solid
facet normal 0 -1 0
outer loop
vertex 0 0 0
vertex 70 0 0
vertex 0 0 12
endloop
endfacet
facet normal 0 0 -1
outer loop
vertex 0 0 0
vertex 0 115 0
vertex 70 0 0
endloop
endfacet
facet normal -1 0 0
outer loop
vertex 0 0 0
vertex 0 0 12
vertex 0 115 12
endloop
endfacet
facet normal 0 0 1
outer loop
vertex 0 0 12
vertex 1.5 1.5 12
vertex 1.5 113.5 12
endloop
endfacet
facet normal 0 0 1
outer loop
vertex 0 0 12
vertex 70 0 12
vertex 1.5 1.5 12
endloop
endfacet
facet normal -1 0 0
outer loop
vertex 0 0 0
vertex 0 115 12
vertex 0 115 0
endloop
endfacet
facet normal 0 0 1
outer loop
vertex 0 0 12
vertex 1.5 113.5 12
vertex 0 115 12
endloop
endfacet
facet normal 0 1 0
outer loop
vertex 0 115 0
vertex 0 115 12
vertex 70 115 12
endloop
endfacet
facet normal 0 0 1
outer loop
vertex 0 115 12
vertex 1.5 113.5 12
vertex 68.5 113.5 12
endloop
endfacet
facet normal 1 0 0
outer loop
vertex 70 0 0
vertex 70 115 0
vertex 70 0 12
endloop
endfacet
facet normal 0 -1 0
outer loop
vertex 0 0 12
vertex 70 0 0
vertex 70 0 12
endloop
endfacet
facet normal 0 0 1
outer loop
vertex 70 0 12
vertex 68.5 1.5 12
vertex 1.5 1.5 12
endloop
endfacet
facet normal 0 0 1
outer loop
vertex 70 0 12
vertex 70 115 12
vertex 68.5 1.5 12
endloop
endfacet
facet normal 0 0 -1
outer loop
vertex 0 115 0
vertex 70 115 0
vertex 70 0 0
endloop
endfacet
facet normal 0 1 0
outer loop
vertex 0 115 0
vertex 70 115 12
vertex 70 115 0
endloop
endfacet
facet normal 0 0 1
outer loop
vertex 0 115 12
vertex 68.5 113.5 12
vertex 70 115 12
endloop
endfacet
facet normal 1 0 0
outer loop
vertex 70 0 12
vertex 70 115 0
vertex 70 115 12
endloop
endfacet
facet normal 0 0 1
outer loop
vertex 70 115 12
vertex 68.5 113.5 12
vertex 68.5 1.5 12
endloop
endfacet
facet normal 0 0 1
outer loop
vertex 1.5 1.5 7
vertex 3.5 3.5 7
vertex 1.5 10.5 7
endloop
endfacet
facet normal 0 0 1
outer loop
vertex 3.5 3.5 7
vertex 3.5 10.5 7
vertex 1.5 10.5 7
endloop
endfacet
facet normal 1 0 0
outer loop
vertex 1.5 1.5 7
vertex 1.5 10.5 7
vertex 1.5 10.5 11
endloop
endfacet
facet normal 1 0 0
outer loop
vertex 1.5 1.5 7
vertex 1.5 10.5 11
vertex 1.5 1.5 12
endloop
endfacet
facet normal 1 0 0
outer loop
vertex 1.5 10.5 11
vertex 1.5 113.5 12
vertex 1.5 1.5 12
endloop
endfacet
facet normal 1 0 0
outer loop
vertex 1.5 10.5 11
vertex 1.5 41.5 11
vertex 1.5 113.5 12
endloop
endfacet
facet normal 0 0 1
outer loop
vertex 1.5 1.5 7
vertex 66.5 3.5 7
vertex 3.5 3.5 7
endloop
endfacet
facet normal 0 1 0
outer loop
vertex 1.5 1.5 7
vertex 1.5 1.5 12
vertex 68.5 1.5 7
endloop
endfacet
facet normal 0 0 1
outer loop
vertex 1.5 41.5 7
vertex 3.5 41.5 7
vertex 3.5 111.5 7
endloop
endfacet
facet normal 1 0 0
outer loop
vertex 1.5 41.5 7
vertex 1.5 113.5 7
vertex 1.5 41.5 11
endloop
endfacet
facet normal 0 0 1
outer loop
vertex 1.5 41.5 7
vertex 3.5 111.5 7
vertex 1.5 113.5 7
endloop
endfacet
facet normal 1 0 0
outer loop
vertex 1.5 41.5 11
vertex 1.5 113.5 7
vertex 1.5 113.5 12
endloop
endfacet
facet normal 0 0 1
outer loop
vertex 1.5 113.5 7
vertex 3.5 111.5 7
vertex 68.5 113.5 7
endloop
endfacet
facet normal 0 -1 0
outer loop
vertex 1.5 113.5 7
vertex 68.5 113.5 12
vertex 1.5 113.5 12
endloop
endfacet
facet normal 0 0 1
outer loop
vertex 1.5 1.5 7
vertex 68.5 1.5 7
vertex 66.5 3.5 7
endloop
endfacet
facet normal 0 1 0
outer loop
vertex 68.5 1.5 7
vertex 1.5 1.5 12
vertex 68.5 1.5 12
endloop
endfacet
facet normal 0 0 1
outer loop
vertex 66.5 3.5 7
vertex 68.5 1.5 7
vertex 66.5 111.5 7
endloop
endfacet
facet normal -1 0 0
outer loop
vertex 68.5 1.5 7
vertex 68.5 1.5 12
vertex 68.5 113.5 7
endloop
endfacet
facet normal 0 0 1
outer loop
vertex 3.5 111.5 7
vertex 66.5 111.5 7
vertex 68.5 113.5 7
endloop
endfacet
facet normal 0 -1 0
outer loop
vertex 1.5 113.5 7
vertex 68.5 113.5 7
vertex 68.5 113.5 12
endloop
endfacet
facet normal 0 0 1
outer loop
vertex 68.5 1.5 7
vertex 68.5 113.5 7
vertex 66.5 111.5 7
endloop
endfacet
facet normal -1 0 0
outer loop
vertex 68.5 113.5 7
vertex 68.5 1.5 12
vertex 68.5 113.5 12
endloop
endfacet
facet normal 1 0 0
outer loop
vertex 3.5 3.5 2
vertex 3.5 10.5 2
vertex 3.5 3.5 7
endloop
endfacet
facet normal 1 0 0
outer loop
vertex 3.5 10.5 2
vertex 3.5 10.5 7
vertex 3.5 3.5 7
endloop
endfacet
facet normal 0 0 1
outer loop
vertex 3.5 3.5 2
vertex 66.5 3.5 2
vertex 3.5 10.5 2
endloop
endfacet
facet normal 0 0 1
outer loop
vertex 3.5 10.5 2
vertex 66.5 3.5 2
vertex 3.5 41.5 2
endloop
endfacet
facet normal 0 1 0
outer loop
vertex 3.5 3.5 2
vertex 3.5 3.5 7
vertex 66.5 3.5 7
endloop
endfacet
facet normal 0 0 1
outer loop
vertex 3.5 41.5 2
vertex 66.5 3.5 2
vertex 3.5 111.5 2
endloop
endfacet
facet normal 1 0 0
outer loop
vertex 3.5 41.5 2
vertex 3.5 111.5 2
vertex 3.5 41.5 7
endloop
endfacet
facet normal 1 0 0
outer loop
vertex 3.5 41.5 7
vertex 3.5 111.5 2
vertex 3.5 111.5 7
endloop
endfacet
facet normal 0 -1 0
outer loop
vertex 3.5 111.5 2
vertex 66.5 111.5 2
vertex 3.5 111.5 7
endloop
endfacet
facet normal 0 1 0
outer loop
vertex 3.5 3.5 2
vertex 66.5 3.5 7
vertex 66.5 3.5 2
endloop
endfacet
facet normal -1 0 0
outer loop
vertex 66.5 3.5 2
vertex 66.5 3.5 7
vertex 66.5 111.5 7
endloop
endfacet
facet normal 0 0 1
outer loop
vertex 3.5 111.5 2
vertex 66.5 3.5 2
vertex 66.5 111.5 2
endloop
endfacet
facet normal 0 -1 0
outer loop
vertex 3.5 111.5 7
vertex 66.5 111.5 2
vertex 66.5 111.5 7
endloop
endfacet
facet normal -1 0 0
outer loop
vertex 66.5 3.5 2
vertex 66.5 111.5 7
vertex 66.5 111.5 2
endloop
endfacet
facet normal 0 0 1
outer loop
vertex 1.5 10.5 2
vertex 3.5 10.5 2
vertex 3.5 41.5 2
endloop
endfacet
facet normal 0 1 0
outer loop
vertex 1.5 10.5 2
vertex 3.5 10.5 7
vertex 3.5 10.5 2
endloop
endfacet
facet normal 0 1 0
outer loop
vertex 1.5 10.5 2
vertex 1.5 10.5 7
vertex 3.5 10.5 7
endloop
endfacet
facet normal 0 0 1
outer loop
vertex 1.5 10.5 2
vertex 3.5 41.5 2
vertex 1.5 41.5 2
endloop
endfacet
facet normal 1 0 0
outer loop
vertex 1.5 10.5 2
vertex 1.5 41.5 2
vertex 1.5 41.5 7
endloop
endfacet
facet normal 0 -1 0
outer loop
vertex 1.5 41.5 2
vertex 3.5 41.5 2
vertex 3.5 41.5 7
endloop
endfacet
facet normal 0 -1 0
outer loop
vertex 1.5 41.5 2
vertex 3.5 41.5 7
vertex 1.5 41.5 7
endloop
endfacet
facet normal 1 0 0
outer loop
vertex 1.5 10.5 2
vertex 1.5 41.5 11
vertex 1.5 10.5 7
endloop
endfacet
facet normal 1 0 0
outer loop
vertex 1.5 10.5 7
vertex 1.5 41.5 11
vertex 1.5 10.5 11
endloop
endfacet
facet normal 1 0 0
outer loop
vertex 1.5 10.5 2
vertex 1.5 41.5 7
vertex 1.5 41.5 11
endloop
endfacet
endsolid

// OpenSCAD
b_X = 67;
b_Y = 112;

WALL = 1.5;
LIP = 2;


esp_WIDTH = 31;

TOP_HEIGHT = 5;
BOTTOM_HEIGHT = 7;

CASE_BOTTOM = 2;


difference() {

    linear_extrude(TOP_HEIGHT + BOTTOM_HEIGHT)
        square(
            [b_X + (WALL * 2),
            b_Y + (WALL * 2)]
            );

    translate([WALL, WALL, BOTTOM_HEIGHT]) { 
        linear_extrude(TOP_HEIGHT + 2)    
            square(
                [b_X, b_Y]
            );
    }

    translate(
    [LIP + WALL,
    LIP + WALL,
    CASE_BOTTOM]) {
        linear_extrude(BOTTOM_HEIGHT + 2)
            square(
            [b_X - (LIP * 2),
            b_Y - (LIP * 2)]);
    }

    translate(
    [WALL,
    WALL + 9,
    CASE_BOTTOM]) {
        linear_extrude(BOTTOM_HEIGHT + 2)
            square([10, esp_WIDTH]);
    }
    
}
